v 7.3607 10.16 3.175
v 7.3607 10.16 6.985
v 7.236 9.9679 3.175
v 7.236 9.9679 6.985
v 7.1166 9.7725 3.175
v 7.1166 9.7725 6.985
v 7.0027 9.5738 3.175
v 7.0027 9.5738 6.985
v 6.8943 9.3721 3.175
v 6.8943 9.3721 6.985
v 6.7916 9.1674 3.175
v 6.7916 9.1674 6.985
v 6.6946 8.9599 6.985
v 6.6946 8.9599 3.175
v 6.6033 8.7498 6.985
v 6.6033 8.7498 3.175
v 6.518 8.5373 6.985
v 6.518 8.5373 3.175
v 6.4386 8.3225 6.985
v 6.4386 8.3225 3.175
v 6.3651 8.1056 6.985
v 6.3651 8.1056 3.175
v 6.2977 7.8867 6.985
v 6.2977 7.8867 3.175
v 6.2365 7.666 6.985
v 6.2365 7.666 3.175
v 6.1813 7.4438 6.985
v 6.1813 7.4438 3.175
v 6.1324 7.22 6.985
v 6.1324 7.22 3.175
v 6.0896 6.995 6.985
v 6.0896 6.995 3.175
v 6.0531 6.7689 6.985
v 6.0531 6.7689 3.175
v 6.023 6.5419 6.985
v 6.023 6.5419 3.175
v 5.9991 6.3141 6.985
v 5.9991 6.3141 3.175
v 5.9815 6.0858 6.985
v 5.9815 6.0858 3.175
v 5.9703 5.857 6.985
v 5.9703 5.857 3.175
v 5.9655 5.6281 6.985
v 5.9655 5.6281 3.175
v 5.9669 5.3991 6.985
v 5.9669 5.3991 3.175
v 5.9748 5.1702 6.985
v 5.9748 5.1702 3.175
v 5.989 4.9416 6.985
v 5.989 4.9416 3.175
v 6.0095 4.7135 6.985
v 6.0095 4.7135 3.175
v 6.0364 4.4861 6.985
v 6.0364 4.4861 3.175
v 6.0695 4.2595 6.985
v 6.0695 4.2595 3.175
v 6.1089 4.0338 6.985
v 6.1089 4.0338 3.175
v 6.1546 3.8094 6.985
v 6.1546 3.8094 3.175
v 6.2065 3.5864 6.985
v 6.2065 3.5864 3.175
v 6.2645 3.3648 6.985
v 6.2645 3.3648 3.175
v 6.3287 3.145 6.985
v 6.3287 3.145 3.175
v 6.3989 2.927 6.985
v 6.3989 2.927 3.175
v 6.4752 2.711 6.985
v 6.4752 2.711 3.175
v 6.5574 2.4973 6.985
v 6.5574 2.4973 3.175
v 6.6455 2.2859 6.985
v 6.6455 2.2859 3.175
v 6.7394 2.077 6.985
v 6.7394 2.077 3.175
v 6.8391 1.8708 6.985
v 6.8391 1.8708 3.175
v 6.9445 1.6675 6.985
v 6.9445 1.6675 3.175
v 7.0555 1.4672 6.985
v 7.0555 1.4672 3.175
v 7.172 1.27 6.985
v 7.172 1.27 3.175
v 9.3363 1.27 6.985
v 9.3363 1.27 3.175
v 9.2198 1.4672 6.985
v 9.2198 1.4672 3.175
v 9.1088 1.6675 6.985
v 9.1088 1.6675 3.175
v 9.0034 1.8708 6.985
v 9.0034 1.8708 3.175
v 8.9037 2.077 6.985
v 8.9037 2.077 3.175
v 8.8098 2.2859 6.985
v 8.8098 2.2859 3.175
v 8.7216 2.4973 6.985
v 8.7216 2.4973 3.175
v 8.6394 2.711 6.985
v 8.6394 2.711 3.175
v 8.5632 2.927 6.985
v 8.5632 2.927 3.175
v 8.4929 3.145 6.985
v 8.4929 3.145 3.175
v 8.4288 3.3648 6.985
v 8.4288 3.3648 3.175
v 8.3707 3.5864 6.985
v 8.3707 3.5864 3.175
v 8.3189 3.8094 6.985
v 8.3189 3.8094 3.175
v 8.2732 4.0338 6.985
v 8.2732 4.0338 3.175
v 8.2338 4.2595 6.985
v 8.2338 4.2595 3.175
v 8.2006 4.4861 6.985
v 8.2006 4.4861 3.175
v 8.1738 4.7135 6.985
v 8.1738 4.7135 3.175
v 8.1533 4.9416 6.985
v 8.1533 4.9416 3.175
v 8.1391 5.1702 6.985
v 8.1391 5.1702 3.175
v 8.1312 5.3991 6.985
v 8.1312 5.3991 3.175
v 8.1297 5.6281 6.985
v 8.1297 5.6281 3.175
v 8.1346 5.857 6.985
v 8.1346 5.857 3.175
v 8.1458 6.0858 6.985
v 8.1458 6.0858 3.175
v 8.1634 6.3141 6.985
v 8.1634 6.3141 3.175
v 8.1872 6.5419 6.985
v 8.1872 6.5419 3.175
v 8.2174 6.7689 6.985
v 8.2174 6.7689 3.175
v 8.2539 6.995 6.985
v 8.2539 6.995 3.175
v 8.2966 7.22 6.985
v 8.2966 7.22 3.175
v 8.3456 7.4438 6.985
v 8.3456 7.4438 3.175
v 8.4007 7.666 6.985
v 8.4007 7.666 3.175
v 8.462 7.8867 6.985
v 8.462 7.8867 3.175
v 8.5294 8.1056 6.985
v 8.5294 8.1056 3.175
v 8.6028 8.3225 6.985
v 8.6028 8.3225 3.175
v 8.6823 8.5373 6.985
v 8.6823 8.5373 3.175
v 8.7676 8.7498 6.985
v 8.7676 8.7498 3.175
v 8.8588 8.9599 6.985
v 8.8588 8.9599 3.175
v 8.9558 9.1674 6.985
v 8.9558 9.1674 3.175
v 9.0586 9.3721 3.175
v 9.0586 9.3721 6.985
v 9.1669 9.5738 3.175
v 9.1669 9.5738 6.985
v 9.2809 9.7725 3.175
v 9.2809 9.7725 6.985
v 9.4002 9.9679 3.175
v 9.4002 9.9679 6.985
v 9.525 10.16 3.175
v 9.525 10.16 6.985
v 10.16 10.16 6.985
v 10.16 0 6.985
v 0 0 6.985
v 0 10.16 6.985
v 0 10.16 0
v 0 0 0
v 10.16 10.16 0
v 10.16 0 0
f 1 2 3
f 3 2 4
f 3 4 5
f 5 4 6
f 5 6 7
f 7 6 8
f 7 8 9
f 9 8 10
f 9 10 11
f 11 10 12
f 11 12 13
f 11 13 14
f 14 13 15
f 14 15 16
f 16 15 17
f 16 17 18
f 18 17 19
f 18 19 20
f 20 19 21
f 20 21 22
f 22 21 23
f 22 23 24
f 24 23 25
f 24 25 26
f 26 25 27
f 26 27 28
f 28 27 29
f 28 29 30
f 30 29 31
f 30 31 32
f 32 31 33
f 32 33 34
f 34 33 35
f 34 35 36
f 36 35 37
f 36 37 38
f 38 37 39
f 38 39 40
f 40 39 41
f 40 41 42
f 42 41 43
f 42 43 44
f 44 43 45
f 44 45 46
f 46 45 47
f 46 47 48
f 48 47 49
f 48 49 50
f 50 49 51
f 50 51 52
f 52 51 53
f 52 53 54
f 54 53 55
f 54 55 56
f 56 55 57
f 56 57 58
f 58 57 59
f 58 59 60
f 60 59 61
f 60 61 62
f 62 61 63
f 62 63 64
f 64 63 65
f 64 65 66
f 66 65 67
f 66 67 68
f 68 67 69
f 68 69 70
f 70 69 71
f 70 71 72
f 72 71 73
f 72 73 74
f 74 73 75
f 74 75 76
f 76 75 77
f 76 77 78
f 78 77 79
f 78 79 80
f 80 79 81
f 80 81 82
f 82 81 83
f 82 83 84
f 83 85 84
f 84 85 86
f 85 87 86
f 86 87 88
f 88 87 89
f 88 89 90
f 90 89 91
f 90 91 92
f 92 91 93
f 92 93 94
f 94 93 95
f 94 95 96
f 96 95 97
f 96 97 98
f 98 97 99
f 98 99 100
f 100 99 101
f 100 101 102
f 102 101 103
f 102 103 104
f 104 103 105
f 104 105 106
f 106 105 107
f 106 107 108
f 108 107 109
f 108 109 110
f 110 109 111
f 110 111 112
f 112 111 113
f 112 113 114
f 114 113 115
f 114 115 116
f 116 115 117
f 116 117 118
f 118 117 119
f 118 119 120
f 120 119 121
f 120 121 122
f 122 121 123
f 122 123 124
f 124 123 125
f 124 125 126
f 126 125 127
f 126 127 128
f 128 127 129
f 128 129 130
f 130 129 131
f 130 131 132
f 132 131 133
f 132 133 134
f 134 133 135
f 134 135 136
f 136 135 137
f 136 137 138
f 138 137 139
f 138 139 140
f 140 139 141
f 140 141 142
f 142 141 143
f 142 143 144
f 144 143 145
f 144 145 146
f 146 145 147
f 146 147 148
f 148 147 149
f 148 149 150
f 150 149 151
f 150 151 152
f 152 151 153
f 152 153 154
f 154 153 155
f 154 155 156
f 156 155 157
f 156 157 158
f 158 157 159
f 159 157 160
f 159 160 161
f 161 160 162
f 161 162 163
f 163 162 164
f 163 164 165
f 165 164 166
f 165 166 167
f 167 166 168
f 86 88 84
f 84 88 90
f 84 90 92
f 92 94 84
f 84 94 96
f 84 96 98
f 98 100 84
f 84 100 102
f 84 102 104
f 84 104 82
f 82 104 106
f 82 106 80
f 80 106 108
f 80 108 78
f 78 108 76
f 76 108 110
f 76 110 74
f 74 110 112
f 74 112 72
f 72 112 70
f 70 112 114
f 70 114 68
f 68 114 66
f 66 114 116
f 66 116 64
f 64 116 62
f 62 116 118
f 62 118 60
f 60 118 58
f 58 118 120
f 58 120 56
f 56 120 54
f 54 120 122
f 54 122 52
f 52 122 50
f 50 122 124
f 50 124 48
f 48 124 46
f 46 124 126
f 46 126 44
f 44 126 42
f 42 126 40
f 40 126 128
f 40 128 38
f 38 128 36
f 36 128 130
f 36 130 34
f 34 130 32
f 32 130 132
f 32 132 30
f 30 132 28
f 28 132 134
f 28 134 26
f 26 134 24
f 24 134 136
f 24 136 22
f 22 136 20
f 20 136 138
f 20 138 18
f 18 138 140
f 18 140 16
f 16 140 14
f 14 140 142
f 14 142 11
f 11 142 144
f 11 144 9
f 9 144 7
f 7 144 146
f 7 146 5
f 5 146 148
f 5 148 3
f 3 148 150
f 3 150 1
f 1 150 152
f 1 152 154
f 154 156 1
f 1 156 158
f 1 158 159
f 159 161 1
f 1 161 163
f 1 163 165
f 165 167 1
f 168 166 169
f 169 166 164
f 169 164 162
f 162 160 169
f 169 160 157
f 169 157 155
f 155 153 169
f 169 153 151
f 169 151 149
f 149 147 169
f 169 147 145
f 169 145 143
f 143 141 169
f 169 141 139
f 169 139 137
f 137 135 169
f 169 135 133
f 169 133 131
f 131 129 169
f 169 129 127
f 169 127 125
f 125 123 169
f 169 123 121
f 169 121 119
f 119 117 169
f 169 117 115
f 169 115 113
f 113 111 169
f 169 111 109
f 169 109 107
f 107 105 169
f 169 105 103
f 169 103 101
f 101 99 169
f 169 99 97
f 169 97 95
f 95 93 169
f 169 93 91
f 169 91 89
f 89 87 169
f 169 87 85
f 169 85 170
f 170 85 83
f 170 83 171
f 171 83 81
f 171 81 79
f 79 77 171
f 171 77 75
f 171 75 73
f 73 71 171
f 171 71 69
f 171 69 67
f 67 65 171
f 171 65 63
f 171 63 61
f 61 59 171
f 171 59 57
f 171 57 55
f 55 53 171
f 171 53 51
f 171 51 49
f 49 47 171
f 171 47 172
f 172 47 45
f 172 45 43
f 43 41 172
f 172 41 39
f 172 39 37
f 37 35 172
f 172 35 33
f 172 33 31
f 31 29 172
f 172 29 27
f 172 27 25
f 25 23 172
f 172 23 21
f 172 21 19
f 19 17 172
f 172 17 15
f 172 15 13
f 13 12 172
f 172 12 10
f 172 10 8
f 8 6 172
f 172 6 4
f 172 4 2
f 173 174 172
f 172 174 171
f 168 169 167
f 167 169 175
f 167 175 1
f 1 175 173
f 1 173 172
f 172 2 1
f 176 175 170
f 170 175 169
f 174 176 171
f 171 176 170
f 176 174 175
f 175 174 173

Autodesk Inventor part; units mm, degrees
ref_plane "YZ Plane" through (0, 0, 0) normal (1, 0, 0) x (0, 1, 0)
ref_plane "XZ Plane" through (0, 0, 0) normal (0, 1, 0) x (-1, 0, 0)
ref_plane "XY Plane" through (0, 0, 0) normal (0, 0, 1) x (1, 0, 0)
sketch "Sketch1" plane through (0, 0, 0) normal (0, 0, 1) x (1, 0, 0)
  line L0 (0, 0) -> (10.16, 0)
  line L1 (10.16, 0) -> (10.16, 10.16)
  line L2 (10.16, 10.16) -> (0, 10.16)
  line L3 (0, 10.16) -> (0, 0)
  dimension "d0" = 10.16
  dimension "d1" = 10.16
extrude "Extrusion1" add sketch "Sketch1" along normal blind 6.985
sketch "Sketch2" plane through (0, 0, 6.985) normal (0, 0, 1) x (1, 0, 0)
  line L0 (0, 0) -> (10.16, 0) construction
  line L1 (10.16, 0) -> (10.16, 10.16) construction
  line L2 (10.16, 10.16) -> (0, 10.16) construction
  line L3 (0, 10.16) -> (0, 0) construction
  arc A0 (9.525, 10.16) -> (9.3363, 1.27) centre (16.3845, 5.5674) ccw
  arc A1 (7.3607, 10.16) -> (7.172, 1.27) centre (14.2202, 5.5674) ccw
  line L4 (7.3607, 10.16) -> (9.525, 10.16)
  line L5 (10.16, 10.16) -> (0, 10.16) projected
  line L6 (7.172, 1.27) -> (9.3363, 1.27)
  dimension "d4" = 8.255
  dimension "d5" = 0.635
  dimension "d6" = 1.27
extrude "Extrusion2" cut sketch "Sketch2" against normal blind 3.81
properties part number "limitSwitchTab" material "ABS Plastic"
